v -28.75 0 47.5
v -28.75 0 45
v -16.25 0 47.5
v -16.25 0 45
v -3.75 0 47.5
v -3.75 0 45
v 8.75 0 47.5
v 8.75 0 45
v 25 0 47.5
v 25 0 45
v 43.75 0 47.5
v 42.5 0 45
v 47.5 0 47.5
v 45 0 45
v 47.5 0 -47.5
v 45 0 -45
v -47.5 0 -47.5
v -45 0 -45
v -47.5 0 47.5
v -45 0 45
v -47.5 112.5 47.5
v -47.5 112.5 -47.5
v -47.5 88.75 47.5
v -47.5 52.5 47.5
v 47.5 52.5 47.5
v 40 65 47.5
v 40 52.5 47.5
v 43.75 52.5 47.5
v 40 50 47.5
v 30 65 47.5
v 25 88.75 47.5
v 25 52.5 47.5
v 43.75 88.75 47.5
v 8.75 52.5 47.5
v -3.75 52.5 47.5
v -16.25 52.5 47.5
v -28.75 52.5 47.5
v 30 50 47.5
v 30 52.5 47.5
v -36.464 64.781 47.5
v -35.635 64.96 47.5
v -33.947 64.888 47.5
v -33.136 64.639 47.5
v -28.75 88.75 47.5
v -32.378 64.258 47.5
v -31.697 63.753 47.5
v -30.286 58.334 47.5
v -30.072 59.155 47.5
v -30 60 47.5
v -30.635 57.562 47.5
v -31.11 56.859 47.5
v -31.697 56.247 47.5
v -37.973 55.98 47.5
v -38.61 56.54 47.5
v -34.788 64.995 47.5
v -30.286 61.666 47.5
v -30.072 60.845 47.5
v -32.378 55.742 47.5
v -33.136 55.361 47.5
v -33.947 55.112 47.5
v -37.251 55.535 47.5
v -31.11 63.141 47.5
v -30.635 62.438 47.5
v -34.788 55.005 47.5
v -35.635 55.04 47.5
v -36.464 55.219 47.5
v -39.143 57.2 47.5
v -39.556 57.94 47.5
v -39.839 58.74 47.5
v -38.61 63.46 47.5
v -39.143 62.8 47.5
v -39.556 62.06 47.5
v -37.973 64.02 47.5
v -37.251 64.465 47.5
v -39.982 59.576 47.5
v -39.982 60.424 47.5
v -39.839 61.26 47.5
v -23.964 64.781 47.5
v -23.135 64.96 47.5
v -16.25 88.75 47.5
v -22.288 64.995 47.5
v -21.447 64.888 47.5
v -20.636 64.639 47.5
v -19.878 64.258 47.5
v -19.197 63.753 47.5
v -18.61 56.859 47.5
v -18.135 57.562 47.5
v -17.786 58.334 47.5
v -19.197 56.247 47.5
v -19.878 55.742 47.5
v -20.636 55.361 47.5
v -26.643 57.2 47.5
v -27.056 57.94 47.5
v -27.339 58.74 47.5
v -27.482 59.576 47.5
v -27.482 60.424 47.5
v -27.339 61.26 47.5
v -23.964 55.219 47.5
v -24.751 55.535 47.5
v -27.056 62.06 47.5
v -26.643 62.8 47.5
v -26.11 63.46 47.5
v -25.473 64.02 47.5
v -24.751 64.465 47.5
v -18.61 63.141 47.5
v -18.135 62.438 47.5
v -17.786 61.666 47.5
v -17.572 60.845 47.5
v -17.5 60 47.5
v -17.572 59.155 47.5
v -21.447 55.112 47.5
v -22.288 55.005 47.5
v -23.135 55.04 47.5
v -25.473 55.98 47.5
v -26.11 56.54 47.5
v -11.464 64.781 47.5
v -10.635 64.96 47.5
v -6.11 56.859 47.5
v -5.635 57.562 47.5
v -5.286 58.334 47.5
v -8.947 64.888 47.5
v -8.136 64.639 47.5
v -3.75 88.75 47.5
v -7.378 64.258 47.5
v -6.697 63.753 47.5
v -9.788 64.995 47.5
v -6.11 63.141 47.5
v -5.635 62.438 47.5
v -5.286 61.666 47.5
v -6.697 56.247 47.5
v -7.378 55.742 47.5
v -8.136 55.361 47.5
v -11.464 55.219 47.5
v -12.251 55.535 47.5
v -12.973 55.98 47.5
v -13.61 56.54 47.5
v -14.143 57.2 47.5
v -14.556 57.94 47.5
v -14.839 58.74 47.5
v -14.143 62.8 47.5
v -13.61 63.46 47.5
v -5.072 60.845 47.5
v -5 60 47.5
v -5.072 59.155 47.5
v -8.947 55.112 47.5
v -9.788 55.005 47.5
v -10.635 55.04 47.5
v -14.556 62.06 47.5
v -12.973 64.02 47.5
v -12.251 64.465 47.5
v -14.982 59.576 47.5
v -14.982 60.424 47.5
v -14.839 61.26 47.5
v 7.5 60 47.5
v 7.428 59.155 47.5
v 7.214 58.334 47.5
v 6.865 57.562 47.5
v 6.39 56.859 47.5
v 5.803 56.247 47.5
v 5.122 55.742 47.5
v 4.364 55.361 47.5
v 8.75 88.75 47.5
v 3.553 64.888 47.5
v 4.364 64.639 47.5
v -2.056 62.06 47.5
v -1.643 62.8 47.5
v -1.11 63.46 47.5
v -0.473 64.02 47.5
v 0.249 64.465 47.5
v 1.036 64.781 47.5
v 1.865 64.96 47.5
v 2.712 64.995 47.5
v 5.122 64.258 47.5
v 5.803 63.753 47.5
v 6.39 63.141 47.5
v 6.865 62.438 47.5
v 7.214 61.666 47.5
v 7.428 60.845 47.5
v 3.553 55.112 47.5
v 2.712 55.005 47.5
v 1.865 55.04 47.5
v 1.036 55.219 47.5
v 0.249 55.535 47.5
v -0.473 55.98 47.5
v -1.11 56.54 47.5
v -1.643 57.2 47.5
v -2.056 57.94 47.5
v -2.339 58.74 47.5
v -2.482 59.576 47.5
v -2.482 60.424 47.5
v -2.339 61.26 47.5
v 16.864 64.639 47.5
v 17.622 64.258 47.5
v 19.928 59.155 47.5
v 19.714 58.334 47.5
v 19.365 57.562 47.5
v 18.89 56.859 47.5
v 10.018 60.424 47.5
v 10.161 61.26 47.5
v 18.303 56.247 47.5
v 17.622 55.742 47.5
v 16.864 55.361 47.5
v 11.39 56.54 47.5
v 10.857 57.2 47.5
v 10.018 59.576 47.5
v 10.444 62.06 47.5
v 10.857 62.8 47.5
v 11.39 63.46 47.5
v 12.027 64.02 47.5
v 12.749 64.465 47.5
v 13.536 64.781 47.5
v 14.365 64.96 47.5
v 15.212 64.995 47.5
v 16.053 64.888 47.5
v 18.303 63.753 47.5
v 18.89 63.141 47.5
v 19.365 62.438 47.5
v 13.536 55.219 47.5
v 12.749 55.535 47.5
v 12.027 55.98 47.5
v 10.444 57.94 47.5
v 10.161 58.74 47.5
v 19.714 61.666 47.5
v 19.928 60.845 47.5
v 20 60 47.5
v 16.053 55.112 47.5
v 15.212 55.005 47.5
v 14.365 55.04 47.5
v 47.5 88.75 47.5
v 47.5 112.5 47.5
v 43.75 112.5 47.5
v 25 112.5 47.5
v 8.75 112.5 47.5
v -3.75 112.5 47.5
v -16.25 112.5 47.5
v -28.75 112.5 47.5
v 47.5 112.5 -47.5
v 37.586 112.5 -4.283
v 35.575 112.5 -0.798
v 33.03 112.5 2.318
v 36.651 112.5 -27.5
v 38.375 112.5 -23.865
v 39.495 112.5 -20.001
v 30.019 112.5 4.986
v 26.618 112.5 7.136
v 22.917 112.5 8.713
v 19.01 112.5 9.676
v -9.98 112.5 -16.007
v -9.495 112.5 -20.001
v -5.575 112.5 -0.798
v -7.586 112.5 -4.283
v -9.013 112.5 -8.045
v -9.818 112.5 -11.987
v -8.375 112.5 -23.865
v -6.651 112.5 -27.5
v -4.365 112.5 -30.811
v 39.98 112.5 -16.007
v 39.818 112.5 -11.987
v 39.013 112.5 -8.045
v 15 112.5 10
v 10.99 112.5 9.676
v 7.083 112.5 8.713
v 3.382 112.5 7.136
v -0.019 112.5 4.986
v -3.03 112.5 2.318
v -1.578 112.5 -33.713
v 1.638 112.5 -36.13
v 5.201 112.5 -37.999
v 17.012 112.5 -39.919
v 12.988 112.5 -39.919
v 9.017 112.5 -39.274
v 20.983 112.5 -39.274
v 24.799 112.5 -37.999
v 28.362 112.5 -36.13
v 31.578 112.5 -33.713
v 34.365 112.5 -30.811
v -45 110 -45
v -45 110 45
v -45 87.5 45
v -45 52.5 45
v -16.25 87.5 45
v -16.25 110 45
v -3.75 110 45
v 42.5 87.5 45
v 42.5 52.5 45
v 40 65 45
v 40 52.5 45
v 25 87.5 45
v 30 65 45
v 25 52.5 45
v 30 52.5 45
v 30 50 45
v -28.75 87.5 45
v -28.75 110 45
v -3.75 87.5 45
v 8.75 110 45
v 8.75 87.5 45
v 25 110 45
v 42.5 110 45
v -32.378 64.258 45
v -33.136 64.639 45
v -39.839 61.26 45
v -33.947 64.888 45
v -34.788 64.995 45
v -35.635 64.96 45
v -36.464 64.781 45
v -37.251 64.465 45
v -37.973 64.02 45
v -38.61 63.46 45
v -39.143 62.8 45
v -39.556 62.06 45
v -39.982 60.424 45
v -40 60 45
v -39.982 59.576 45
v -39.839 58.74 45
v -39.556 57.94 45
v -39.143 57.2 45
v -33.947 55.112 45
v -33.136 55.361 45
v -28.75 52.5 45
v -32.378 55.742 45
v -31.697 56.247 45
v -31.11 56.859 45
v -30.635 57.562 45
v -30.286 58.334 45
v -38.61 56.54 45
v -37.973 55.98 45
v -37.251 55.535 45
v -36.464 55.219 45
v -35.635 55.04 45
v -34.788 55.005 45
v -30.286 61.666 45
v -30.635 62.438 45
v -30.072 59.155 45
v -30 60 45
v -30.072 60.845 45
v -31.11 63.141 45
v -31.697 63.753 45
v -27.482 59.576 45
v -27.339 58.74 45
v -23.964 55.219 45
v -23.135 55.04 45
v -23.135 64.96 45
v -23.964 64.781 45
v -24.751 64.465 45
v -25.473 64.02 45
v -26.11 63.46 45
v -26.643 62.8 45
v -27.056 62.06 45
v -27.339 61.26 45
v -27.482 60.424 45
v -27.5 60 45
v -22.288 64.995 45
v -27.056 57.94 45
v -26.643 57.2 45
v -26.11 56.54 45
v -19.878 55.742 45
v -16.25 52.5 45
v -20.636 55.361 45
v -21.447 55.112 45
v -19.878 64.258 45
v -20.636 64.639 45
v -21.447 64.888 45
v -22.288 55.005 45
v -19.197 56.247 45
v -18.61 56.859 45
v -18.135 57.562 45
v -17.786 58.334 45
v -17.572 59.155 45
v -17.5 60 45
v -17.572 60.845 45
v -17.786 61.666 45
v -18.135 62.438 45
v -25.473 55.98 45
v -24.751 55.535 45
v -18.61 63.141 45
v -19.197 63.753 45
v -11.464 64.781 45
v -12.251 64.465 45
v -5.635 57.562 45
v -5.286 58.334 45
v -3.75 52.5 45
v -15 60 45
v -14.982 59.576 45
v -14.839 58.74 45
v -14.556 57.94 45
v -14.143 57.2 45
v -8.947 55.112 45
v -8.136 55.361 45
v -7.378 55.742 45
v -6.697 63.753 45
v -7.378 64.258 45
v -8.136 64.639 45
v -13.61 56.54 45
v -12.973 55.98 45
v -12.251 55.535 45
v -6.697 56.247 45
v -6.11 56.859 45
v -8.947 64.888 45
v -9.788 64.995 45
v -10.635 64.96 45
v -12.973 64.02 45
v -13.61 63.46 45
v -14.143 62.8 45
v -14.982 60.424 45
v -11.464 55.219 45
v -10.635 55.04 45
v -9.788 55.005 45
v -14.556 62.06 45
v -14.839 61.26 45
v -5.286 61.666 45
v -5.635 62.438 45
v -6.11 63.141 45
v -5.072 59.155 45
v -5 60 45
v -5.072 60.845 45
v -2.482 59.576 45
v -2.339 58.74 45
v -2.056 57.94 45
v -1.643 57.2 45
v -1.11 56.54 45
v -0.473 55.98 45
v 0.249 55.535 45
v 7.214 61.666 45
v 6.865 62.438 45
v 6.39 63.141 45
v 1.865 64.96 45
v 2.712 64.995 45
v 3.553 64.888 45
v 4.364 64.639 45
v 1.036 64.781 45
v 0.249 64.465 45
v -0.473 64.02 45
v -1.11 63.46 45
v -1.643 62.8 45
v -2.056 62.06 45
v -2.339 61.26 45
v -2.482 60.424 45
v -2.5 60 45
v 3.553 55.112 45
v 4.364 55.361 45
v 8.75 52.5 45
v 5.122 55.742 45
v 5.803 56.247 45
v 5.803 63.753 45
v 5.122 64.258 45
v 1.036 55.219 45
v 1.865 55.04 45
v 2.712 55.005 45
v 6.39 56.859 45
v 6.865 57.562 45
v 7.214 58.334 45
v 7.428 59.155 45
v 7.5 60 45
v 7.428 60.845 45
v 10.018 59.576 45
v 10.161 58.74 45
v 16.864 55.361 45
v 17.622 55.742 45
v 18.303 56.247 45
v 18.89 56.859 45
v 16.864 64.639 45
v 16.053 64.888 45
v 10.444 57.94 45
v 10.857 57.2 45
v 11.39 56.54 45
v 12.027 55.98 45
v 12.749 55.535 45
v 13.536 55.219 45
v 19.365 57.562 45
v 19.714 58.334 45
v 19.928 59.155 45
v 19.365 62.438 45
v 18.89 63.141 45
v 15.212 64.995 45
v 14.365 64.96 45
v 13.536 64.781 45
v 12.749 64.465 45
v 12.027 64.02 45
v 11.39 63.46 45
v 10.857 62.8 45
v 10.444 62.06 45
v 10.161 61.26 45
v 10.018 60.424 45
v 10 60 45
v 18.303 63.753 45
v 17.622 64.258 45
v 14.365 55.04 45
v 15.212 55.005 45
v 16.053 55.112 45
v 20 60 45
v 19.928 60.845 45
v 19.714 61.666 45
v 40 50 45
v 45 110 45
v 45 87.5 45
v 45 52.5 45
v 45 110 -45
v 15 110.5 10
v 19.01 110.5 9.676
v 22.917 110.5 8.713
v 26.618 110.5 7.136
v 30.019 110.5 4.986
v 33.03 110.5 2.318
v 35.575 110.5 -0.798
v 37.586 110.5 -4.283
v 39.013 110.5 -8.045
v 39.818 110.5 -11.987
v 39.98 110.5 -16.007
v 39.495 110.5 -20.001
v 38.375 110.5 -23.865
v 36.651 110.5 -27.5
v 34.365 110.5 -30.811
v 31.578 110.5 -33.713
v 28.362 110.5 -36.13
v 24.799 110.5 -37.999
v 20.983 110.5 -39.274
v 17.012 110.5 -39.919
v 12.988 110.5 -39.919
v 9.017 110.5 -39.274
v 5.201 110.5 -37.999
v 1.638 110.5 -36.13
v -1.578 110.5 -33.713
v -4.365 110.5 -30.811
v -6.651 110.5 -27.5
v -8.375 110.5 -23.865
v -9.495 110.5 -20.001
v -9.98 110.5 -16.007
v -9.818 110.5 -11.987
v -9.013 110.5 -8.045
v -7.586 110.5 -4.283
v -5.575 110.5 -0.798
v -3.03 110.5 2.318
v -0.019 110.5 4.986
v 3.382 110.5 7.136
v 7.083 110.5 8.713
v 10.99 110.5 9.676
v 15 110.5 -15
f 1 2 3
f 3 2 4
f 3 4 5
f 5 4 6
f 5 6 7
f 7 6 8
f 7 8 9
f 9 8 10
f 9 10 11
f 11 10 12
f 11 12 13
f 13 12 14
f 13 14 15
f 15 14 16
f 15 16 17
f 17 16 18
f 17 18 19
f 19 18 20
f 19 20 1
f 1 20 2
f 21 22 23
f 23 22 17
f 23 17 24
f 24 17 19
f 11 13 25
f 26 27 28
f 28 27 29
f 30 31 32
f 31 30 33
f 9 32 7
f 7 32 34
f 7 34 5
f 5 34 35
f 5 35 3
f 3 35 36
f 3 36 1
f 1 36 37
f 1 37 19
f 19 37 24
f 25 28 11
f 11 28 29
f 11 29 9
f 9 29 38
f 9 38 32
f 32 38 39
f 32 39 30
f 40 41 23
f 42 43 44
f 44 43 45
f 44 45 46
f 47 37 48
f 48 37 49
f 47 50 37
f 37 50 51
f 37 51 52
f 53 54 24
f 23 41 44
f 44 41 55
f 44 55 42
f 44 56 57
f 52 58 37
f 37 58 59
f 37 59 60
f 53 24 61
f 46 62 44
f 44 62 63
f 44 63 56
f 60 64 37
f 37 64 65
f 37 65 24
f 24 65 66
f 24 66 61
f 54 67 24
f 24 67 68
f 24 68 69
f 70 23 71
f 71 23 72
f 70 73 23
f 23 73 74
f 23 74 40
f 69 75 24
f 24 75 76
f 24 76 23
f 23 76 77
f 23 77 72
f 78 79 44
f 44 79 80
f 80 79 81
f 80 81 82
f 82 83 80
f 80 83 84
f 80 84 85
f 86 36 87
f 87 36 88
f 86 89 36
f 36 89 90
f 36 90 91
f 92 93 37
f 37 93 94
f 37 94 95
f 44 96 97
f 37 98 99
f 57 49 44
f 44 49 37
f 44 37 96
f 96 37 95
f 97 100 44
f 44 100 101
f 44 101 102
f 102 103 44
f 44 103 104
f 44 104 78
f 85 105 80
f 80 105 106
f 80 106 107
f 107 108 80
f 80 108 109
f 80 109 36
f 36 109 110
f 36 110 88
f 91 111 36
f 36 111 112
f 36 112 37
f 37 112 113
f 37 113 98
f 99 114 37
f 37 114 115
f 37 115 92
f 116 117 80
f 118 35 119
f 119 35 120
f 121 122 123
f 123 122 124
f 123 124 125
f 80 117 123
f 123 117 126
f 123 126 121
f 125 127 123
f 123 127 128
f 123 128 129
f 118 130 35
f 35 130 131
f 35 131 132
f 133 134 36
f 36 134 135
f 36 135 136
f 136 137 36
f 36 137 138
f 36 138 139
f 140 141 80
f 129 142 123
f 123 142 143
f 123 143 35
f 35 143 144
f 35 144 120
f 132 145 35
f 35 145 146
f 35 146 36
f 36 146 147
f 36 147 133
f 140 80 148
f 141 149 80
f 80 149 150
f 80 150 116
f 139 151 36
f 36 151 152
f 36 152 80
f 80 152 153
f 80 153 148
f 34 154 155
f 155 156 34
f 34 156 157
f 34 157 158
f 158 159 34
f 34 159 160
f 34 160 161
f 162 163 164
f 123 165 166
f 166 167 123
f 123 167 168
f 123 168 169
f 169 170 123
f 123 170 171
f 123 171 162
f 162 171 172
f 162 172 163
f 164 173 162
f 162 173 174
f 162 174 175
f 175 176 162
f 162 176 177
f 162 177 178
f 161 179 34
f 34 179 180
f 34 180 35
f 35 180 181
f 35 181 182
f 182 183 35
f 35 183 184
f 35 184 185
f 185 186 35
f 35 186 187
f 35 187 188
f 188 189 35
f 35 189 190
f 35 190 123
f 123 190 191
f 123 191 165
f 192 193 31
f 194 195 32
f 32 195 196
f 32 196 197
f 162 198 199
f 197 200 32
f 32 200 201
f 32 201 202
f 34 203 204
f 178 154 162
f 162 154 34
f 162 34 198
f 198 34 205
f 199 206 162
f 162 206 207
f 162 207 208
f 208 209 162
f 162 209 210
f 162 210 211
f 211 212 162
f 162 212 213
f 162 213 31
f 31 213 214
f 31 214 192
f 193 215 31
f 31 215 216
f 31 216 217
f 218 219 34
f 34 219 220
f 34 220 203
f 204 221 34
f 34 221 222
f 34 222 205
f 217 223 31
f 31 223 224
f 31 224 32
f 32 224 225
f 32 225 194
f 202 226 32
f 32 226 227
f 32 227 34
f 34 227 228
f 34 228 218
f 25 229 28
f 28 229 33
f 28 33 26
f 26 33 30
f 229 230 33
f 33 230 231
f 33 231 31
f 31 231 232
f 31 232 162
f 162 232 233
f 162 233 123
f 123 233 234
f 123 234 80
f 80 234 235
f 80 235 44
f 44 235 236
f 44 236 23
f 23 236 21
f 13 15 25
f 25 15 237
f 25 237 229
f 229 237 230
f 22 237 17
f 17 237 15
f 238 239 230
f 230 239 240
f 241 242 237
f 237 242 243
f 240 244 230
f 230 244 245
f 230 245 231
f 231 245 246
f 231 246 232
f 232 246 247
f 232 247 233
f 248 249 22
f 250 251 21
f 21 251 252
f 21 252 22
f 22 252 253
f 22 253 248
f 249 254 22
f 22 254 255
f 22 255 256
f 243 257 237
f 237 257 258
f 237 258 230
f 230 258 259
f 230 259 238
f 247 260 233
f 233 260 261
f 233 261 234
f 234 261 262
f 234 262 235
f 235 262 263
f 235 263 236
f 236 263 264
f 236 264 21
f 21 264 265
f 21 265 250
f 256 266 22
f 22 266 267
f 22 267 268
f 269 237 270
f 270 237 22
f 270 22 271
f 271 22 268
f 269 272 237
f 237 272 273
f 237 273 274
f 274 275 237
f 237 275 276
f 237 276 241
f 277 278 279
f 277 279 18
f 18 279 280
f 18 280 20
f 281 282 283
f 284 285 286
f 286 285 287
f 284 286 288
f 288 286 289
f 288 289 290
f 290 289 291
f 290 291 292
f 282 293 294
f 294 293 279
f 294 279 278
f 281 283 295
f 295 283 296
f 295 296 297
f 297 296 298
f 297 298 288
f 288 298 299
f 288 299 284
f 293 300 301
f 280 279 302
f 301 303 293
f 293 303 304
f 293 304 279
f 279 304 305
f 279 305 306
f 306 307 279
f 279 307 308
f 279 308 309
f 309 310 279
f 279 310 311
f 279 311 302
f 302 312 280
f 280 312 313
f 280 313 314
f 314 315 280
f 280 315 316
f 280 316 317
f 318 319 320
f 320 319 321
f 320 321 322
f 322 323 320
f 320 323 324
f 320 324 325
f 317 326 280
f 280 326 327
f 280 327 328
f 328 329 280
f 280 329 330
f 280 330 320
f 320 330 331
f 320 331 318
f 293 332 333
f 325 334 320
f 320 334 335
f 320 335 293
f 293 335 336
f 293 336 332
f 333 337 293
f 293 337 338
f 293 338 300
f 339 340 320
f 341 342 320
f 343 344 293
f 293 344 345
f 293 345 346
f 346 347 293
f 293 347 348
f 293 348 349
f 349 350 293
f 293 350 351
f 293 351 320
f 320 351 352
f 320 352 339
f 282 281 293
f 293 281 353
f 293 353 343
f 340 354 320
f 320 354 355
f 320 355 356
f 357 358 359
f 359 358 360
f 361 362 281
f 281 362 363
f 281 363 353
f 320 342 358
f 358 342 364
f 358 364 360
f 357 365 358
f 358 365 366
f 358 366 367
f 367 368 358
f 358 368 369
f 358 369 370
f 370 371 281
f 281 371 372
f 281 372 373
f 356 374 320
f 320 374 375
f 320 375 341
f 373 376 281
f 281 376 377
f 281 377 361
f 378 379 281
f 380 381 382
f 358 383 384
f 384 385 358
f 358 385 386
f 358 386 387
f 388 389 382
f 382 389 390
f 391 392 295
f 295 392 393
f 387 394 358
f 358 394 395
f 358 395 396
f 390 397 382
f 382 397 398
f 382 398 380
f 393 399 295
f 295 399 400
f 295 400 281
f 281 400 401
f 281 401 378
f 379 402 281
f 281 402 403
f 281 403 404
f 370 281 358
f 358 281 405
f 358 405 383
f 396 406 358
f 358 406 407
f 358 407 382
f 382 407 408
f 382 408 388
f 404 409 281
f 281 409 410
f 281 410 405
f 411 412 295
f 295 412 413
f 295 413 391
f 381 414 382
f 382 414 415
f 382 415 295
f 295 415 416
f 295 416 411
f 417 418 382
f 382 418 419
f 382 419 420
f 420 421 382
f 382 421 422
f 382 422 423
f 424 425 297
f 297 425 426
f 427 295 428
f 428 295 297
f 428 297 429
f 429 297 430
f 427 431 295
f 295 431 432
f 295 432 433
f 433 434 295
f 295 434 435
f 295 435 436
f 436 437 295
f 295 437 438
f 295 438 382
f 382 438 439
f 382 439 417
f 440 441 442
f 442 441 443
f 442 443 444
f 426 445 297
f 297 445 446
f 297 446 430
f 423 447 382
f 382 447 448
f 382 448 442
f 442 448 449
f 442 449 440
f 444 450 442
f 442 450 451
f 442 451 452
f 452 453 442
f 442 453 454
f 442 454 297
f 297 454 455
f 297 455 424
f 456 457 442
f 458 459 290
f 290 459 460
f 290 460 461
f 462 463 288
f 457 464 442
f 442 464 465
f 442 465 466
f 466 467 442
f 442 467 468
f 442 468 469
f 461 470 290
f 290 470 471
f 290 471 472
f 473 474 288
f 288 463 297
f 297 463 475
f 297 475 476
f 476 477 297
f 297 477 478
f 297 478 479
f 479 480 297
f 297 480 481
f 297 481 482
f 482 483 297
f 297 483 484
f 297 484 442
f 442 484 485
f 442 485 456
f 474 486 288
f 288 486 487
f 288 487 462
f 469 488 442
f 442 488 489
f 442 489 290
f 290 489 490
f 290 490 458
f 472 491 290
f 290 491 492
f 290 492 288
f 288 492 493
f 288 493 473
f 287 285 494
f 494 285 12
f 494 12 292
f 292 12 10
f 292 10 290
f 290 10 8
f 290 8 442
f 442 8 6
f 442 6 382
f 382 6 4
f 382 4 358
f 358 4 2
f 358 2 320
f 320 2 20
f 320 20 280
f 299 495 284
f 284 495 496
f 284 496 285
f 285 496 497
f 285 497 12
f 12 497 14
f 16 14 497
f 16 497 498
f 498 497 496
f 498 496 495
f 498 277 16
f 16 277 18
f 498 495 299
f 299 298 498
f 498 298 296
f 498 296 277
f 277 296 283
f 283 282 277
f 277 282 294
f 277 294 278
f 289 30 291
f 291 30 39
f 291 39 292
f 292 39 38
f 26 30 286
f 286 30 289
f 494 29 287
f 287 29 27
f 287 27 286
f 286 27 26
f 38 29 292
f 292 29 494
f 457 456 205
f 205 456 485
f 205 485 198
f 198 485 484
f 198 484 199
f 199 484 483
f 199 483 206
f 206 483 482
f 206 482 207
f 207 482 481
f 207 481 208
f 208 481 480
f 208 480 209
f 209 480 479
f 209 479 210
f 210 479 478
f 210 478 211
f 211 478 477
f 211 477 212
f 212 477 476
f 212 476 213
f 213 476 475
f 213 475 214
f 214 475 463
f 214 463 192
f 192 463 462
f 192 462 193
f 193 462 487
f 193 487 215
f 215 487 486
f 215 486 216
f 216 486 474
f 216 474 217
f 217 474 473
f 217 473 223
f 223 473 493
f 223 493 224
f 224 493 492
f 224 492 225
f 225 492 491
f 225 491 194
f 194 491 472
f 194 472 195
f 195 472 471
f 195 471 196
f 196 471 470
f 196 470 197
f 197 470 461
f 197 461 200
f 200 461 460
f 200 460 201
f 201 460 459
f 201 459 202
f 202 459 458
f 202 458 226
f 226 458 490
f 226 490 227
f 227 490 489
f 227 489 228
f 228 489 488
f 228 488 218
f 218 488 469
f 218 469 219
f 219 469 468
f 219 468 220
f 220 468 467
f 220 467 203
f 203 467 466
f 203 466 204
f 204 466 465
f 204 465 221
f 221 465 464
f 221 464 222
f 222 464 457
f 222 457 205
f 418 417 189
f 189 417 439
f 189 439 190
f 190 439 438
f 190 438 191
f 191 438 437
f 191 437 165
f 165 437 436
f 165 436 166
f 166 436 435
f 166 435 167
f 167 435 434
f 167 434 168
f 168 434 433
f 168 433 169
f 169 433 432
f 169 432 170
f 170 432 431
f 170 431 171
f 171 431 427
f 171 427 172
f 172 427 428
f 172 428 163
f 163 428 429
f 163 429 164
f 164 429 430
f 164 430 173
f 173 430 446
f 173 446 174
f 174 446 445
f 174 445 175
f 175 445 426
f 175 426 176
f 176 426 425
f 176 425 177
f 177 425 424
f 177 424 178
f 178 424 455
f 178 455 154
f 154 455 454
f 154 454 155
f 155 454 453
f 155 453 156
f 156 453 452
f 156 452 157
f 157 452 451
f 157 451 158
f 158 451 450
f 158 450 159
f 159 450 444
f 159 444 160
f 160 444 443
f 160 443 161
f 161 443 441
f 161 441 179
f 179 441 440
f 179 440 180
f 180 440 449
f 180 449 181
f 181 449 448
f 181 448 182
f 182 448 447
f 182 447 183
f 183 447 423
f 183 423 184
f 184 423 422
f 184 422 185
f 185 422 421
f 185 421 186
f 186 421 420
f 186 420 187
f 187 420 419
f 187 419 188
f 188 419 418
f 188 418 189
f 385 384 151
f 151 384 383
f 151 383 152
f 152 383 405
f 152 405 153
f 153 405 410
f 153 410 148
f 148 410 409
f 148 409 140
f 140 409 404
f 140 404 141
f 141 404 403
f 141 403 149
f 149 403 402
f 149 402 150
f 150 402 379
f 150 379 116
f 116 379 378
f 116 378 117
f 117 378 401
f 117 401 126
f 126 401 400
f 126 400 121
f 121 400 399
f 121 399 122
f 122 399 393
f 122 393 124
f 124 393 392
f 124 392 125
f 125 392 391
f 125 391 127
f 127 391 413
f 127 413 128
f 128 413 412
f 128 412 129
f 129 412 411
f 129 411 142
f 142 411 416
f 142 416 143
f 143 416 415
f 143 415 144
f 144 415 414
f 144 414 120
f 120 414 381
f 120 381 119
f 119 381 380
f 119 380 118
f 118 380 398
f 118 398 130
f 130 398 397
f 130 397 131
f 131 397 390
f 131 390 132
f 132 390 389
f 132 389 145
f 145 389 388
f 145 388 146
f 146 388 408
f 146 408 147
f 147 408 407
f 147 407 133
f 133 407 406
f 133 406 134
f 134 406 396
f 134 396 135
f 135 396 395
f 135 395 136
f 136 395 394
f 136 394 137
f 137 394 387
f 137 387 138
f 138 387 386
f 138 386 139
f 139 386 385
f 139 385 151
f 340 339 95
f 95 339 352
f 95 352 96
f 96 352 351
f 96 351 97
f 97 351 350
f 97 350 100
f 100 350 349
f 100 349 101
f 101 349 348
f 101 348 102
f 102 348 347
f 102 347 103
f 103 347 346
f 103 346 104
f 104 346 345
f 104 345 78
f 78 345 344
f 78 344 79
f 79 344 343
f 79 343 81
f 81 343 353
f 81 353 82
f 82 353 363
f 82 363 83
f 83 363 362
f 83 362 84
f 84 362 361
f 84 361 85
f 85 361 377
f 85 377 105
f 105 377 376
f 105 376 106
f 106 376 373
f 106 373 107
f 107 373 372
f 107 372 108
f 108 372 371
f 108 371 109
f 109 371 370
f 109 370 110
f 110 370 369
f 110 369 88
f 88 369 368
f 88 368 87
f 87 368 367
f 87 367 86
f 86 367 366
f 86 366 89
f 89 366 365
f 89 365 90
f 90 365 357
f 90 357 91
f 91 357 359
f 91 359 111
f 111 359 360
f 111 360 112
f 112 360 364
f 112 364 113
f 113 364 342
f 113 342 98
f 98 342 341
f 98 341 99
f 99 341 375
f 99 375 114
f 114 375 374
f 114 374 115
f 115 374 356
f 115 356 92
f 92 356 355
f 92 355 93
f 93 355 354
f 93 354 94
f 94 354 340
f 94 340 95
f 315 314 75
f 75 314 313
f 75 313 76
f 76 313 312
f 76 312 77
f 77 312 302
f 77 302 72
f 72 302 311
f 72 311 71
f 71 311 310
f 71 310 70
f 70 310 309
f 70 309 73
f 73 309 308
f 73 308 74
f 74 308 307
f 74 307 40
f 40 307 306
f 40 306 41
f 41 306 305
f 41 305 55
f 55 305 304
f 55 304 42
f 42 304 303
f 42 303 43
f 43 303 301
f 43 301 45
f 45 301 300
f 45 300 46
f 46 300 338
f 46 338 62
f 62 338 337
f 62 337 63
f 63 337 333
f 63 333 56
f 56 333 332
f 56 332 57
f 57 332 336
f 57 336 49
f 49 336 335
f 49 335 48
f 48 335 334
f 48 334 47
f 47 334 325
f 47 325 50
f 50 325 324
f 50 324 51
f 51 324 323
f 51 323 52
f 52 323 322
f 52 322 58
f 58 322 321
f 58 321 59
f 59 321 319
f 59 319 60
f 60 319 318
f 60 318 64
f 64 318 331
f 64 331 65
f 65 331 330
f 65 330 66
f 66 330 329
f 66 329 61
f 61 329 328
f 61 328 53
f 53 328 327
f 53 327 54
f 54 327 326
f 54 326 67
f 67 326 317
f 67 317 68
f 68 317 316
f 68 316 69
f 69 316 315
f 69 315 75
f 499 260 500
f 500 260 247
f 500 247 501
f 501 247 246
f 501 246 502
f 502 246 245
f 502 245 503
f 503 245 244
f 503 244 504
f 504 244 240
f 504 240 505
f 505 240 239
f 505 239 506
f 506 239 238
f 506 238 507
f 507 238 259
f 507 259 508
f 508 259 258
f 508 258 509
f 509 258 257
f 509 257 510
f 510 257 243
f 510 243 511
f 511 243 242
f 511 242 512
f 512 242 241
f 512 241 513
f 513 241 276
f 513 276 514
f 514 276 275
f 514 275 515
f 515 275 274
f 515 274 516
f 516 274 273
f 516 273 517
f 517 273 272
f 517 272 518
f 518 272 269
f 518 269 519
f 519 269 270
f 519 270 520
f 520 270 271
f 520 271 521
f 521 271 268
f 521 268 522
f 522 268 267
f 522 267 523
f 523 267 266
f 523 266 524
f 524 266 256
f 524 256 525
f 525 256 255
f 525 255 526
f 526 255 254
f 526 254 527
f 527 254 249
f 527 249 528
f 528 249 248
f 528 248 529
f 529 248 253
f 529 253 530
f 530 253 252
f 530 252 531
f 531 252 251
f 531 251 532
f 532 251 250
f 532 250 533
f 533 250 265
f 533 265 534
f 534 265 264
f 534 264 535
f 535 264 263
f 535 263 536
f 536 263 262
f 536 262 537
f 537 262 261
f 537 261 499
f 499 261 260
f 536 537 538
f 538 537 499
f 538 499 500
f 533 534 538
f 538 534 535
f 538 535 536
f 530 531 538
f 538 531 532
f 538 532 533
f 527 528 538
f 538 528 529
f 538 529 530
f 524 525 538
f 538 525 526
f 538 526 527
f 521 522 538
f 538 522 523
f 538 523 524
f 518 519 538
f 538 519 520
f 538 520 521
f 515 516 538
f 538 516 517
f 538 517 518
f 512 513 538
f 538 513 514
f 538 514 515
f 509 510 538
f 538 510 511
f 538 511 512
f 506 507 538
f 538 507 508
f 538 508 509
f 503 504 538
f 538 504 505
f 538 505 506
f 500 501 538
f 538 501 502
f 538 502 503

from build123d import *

# Parameters (mm, degrees)
SKETCH2_W           = 90
SKETCH2_H           = 90
BOSS_EXTRUDE2_DEPTH = 110
SHELL2_T            = 2.5
SKETCH3_R           = 5
SKETCH3_W           = 10
SKETCH3_H           = 15
CUT_EXTRUDE1_DEPTH  = 10
SKETCH4_R           = 25
CUT_EXTRUDE2_DEPTH  = 2


with BuildPart() as part:
    # Sketch2 → Boss-Extrude2 (new body)
    with BuildSketch(Plane(origin=(0, 0, 0), x_dir=(1, 0, 0), z_dir=(0, 1, 0))):
        Rectangle(SKETCH2_W, SKETCH2_H)
    extrude(amount=BOSS_EXTRUDE2_DEPTH)

    # Shell2
    shell2_openings = [part.faces().sort_by_distance(p)[0] for p in [
        (0, 0, 0),
    ]]
    offset(amount=SHELL2_T, openings=shell2_openings, kind=Kind.INTERSECTION)

    # Sketch3 → Cut-Extrude1 (cut)
    with BuildSketch(Plane.XY.offset(47.5)):
        with Locations((-35, 60)):
            Circle(SKETCH3_R)
        with Locations((-22.5, 60)):
            Circle(SKETCH3_R)
        with Locations((-10, 60)):
            Circle(SKETCH3_R)
        with Locations((2.5, 60)):
            Circle(SKETCH3_R)
        with Locations((15, 60)):
            Circle(SKETCH3_R)
        with Locations((35, 57.5)):
            Rectangle(SKETCH3_W, SKETCH3_H)
    extrude(amount=-CUT_EXTRUDE1_DEPTH, mode=Mode.SUBTRACT)

    # Sketch4 → Cut-Extrude2 (cut)
    with BuildSketch(Plane(origin=(0, 112.5, 0), x_dir=(1, 0, 0), z_dir=(0, 1, 0))):
        with Locations(Location((15, 15, 0), (0, 0, 270))):
            Circle(SKETCH4_R)
    extrude(amount=-CUT_EXTRUDE2_DEPTH, mode=Mode.SUBTRACT)


solid = part.part
